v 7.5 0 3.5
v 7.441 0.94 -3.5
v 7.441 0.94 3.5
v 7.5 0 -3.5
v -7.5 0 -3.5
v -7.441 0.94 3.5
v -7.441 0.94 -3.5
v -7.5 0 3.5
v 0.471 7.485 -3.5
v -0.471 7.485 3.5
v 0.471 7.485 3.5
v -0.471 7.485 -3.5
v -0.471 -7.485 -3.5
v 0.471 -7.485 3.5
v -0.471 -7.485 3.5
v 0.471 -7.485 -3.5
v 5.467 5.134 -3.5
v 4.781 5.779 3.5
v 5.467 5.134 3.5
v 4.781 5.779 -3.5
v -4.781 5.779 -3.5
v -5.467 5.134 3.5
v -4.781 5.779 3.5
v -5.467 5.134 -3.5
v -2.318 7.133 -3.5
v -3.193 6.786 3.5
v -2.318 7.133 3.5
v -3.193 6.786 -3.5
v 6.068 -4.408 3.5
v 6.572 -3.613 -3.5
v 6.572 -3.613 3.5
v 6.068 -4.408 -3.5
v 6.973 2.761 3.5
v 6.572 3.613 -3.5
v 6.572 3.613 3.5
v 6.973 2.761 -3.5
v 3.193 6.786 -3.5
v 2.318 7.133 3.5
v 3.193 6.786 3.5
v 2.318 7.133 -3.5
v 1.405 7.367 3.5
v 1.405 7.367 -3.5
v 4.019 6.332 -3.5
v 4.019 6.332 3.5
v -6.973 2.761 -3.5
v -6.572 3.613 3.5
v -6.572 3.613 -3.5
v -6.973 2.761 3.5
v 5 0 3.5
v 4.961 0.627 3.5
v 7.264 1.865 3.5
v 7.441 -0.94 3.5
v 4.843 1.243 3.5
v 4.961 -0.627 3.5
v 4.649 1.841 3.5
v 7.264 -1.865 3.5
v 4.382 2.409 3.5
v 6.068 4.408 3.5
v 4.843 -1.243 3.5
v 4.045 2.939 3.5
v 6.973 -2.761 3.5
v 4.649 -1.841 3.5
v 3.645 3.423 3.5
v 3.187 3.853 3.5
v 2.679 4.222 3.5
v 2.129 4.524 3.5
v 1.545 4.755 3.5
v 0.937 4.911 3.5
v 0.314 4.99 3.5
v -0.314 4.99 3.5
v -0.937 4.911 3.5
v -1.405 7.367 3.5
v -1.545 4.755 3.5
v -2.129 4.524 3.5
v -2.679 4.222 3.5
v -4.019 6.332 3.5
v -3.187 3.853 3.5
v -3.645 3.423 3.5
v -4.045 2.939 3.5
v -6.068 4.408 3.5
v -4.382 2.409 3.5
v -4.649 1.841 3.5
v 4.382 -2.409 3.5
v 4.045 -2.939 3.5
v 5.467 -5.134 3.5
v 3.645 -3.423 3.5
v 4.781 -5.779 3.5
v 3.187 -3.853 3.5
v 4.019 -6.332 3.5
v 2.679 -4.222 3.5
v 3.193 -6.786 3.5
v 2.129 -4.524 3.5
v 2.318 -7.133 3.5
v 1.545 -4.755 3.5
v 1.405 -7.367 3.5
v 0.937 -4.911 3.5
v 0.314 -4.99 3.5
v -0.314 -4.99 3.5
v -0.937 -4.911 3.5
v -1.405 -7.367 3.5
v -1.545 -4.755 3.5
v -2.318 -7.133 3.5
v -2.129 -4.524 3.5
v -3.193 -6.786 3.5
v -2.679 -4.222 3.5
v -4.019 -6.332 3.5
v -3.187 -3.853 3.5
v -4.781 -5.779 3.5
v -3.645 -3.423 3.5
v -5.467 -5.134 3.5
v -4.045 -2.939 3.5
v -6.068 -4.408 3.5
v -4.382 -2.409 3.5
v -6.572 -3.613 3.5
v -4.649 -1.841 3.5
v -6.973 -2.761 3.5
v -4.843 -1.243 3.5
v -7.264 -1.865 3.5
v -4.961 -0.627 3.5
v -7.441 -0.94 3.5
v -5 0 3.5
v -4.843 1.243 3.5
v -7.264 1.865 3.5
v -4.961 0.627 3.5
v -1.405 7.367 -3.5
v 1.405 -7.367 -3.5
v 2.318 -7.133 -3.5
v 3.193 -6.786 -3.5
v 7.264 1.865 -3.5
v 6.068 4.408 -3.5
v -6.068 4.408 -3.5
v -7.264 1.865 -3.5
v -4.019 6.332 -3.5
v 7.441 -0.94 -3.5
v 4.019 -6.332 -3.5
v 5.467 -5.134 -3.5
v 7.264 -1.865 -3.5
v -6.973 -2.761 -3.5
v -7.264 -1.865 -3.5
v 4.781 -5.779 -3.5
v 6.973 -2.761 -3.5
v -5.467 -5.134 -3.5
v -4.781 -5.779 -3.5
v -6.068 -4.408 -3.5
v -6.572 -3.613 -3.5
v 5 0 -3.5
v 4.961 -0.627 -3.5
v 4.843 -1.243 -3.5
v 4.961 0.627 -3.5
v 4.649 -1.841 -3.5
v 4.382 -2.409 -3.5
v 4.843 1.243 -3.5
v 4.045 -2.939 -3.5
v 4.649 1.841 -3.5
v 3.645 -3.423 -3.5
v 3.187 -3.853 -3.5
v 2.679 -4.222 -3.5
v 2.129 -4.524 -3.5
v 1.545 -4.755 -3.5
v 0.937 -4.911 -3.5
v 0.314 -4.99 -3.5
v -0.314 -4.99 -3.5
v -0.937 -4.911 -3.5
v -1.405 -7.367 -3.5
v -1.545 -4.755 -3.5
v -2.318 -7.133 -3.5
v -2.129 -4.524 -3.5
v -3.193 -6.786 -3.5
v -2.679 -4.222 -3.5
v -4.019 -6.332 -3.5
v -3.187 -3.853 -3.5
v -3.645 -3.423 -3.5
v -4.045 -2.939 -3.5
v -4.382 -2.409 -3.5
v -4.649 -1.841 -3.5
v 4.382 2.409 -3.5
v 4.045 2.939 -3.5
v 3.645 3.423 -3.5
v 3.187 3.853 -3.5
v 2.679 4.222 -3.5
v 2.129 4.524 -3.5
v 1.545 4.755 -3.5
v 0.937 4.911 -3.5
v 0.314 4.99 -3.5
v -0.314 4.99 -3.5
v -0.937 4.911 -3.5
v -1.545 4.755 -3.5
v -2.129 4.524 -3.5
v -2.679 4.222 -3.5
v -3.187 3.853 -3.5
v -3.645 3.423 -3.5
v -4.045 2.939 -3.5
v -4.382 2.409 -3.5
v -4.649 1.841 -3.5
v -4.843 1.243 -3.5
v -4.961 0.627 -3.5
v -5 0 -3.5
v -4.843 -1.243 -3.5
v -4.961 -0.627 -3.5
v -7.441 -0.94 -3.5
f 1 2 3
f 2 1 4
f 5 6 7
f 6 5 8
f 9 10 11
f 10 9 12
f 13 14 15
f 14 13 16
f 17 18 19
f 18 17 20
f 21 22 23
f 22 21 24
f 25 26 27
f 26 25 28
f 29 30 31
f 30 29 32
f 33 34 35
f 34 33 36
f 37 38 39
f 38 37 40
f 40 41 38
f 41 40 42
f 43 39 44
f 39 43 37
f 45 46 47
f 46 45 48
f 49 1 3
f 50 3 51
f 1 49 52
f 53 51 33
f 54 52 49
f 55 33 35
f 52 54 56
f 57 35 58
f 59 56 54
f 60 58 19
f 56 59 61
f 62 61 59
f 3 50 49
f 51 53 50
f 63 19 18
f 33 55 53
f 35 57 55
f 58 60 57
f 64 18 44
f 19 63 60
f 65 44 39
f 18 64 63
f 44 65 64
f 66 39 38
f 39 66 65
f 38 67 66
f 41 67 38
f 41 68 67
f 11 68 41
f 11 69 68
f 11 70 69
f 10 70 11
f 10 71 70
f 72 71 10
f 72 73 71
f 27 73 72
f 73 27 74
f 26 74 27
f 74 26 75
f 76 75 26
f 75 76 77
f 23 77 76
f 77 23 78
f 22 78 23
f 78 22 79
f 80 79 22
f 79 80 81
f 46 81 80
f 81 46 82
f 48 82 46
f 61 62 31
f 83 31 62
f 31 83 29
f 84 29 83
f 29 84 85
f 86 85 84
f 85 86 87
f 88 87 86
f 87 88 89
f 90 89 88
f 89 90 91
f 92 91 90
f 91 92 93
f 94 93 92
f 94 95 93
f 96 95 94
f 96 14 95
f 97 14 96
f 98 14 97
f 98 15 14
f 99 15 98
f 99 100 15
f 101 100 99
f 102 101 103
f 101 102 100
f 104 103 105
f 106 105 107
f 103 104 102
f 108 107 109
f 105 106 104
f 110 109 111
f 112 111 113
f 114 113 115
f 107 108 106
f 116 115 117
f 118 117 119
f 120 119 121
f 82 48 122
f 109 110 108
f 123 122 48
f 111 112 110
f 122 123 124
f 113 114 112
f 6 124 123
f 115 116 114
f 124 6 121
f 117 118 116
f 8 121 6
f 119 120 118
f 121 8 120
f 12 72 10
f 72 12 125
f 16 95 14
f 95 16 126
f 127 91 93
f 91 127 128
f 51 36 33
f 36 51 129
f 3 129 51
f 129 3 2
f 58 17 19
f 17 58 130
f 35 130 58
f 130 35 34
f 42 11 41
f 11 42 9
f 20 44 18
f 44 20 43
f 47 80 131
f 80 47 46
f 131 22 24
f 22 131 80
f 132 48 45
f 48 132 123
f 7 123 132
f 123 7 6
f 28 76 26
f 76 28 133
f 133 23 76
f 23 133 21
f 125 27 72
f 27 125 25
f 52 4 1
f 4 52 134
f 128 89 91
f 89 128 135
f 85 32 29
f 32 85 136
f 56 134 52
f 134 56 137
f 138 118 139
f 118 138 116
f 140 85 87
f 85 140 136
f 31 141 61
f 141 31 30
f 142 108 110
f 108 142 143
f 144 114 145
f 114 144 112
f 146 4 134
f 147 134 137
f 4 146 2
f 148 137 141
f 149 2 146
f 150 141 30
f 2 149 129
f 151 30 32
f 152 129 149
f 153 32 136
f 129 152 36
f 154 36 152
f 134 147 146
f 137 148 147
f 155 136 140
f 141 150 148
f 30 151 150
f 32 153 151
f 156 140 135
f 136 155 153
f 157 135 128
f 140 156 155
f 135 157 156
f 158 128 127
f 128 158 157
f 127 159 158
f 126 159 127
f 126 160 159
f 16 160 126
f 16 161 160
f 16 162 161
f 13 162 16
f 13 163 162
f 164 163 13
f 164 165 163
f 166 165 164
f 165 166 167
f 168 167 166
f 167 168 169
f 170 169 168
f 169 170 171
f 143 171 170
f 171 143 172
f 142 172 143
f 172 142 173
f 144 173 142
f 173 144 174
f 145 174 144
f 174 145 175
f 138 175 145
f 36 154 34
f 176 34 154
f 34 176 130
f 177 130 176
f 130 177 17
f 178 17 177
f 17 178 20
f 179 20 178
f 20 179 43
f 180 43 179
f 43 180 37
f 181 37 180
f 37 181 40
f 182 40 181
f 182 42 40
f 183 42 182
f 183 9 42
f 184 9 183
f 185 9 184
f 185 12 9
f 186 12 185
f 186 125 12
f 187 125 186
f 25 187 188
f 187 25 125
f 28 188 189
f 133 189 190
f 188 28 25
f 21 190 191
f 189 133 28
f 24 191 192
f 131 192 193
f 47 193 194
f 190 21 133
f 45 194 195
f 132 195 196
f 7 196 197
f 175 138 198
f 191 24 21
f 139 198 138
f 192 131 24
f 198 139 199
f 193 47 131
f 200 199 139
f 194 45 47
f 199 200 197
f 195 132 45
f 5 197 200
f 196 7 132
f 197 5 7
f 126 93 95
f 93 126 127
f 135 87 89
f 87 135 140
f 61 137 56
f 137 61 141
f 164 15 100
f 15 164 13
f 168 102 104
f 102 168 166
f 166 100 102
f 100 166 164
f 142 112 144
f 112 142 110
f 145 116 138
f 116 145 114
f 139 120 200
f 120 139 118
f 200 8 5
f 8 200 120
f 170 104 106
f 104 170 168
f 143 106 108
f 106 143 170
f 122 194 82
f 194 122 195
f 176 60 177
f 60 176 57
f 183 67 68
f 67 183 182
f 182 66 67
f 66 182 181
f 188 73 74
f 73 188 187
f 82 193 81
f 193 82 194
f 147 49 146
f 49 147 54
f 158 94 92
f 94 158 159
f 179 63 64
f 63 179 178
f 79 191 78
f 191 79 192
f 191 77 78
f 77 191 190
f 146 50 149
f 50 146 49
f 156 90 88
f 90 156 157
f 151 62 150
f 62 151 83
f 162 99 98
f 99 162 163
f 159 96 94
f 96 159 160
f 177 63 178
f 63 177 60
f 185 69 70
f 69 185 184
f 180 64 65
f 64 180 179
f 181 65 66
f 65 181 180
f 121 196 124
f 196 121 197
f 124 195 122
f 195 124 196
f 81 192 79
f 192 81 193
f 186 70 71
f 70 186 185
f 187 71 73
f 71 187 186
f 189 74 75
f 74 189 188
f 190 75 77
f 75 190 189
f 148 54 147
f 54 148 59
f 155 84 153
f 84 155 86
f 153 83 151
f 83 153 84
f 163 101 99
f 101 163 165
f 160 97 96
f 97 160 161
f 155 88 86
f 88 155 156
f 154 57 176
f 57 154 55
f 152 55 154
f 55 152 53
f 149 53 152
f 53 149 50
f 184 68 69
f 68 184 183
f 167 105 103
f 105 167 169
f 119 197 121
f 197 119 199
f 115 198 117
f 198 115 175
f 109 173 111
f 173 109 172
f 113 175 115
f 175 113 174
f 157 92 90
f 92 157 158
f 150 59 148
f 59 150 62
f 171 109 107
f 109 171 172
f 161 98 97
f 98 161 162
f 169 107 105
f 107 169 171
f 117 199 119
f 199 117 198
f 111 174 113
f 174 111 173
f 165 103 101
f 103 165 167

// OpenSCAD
$fn = 50;


difference() {
	union() {
		translate(v = [0, 0, -3.5000000000]) {
			cylinder(h = 7, r = 7.5000000000);
		}
	}
	union() {
		translate(v = [0, 0, -100.0000000000]) {
			cylinder(h = 200, r = 5.0000000000);
		}
	}
}
